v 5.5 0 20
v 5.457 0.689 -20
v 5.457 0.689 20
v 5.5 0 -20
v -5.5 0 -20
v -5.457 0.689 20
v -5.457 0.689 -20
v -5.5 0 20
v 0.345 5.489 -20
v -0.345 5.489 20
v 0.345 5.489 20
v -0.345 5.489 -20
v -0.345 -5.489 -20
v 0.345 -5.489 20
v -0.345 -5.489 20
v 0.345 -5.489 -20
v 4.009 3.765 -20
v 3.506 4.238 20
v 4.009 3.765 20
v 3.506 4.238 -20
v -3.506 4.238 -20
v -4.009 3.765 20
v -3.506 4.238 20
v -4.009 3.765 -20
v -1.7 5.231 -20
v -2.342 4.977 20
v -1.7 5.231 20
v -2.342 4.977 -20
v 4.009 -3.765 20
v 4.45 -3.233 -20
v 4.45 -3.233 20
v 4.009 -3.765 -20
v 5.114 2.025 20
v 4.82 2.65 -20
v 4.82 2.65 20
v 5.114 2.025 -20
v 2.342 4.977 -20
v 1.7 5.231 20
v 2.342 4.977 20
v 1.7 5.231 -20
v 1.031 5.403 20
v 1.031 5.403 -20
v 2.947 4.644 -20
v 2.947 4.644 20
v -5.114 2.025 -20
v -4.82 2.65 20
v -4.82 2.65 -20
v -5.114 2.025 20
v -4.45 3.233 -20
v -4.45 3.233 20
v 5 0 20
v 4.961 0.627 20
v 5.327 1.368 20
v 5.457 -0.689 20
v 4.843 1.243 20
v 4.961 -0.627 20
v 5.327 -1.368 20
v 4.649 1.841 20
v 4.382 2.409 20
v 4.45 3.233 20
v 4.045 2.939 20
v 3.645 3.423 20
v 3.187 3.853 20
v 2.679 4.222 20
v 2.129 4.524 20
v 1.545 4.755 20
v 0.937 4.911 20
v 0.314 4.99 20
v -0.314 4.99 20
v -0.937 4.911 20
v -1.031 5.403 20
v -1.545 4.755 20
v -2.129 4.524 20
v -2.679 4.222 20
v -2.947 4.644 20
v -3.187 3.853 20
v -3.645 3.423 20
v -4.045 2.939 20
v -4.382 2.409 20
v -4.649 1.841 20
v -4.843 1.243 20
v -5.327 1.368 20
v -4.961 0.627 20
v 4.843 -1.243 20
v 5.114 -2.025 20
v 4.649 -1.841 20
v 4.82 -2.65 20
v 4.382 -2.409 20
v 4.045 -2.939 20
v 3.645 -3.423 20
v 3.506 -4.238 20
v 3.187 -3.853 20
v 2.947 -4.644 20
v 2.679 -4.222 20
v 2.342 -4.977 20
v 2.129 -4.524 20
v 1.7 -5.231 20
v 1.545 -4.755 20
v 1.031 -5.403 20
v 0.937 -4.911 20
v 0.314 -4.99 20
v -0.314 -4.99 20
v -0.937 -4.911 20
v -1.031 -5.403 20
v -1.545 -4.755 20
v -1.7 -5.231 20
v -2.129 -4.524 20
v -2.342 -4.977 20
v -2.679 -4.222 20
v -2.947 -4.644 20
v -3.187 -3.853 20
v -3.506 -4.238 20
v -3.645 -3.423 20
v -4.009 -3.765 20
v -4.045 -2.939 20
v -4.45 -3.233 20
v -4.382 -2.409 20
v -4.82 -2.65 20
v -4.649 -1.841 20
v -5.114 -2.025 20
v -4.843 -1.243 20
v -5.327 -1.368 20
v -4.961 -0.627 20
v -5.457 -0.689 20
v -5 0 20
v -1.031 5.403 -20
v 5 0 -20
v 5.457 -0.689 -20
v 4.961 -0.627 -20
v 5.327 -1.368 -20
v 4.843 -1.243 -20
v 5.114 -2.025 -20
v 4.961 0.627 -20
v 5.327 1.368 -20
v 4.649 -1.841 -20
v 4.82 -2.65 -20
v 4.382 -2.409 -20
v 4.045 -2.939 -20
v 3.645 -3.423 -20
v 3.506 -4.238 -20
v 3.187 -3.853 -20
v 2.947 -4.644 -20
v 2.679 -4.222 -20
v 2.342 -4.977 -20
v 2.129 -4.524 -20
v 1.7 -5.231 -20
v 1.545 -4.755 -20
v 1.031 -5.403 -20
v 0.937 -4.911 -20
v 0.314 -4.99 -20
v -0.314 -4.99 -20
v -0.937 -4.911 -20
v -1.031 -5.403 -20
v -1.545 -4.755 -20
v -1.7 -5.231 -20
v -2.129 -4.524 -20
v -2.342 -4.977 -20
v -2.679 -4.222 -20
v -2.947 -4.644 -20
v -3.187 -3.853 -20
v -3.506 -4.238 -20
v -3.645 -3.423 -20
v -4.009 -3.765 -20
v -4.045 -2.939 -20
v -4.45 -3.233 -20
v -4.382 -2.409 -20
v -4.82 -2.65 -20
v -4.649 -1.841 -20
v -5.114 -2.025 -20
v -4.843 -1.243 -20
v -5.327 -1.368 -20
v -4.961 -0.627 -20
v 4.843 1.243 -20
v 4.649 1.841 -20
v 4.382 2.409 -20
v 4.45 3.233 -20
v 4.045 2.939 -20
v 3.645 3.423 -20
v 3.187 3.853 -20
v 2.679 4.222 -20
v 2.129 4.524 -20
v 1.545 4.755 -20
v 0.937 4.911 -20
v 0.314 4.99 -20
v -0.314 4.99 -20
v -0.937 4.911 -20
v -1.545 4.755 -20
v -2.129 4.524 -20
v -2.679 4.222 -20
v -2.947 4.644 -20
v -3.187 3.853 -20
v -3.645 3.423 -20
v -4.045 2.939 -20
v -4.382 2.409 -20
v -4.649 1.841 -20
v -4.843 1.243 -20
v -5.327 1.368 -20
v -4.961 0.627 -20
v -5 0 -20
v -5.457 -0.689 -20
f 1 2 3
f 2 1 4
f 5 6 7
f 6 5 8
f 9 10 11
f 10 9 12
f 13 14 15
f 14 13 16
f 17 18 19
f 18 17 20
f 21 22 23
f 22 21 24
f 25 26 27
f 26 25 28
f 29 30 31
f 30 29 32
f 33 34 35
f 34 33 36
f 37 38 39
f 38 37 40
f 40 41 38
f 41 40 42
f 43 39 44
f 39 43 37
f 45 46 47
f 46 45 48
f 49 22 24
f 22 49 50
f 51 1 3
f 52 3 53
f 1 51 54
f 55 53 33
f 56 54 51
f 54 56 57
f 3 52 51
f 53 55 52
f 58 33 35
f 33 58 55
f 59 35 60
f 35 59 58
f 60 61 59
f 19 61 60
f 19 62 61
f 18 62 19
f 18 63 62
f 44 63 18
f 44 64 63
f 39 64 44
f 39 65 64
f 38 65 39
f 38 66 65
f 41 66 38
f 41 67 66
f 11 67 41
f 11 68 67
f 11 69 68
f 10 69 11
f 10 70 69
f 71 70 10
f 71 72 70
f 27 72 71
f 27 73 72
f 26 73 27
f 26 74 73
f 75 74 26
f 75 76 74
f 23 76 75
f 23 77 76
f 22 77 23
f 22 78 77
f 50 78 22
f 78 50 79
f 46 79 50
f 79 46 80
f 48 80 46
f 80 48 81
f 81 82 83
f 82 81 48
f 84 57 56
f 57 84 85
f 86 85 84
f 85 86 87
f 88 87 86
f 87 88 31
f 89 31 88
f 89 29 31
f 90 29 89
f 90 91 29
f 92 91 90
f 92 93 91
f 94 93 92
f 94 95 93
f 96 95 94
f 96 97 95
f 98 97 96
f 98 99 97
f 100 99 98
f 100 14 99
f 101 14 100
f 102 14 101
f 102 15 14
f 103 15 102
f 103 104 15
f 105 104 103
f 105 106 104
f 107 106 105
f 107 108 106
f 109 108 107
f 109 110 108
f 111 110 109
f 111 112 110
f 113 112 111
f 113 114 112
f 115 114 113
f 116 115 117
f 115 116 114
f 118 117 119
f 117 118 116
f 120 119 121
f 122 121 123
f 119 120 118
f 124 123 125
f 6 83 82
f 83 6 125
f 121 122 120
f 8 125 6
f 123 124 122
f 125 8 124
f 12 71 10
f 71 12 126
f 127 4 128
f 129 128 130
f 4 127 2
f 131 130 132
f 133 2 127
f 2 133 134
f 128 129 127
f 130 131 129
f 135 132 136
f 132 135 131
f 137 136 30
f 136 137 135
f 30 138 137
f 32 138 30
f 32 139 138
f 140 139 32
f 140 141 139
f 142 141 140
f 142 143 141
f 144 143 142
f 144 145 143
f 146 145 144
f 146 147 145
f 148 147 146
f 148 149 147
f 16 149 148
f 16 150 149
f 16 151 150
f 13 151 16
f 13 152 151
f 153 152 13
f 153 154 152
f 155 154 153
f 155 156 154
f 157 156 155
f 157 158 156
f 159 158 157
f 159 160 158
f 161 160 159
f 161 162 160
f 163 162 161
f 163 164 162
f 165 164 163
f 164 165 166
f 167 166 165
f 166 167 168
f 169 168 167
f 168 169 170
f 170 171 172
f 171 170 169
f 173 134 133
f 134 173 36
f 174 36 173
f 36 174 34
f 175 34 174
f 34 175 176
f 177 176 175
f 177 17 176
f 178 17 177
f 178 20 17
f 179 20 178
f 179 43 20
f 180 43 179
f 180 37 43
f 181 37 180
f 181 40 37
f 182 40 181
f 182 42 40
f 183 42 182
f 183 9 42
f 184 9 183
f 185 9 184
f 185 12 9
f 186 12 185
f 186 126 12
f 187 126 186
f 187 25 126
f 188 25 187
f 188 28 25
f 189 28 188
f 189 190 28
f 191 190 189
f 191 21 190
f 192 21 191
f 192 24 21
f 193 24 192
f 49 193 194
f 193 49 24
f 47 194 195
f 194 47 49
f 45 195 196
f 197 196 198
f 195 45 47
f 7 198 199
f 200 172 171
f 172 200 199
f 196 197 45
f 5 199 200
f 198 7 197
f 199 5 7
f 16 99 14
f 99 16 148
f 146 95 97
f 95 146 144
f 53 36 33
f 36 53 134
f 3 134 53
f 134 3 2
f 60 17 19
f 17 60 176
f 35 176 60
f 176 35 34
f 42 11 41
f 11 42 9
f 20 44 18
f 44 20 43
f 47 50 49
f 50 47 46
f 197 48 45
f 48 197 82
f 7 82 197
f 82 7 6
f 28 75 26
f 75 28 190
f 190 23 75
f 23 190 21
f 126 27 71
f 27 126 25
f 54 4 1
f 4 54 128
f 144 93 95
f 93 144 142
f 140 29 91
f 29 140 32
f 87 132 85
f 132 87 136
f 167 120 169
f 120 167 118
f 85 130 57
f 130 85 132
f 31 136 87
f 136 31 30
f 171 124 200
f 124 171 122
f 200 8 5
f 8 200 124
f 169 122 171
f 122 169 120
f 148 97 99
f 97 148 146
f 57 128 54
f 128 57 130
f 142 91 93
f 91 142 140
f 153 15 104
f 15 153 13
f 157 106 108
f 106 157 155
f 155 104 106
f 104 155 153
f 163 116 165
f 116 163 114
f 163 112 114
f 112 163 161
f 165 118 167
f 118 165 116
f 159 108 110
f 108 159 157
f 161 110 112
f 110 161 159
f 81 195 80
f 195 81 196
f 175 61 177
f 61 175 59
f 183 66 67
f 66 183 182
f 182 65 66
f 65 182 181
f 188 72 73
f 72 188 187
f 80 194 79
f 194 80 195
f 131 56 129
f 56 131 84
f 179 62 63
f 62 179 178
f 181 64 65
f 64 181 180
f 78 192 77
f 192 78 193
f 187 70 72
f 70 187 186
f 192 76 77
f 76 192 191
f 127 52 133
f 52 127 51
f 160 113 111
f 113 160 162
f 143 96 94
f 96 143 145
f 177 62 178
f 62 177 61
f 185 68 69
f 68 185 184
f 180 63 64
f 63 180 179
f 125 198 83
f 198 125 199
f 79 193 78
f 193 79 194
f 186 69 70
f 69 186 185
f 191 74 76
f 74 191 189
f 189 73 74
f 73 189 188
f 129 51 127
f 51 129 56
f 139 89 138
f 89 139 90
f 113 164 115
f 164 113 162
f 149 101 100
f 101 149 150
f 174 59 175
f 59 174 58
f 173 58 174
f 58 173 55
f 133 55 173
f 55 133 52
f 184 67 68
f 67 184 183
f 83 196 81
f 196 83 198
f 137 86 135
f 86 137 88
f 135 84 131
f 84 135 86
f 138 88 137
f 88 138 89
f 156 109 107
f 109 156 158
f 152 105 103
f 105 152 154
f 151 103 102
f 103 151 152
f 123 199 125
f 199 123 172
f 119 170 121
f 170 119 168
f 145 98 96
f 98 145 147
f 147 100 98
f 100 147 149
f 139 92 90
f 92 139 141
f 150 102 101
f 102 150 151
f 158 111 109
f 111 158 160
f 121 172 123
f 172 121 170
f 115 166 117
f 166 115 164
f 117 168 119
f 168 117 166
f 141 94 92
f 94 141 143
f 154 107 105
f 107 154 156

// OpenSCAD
$fn = 50;


difference() {
	union() {
		translate(v = [0, 0, -20.0000000000]) {
			cylinder(h = 40, r = 5.5000000000);
		}
	}
	union() {
		translate(v = [0, 0, -100.0000000000]) {
			cylinder(h = 200, r = 5);
		}
	}
}
